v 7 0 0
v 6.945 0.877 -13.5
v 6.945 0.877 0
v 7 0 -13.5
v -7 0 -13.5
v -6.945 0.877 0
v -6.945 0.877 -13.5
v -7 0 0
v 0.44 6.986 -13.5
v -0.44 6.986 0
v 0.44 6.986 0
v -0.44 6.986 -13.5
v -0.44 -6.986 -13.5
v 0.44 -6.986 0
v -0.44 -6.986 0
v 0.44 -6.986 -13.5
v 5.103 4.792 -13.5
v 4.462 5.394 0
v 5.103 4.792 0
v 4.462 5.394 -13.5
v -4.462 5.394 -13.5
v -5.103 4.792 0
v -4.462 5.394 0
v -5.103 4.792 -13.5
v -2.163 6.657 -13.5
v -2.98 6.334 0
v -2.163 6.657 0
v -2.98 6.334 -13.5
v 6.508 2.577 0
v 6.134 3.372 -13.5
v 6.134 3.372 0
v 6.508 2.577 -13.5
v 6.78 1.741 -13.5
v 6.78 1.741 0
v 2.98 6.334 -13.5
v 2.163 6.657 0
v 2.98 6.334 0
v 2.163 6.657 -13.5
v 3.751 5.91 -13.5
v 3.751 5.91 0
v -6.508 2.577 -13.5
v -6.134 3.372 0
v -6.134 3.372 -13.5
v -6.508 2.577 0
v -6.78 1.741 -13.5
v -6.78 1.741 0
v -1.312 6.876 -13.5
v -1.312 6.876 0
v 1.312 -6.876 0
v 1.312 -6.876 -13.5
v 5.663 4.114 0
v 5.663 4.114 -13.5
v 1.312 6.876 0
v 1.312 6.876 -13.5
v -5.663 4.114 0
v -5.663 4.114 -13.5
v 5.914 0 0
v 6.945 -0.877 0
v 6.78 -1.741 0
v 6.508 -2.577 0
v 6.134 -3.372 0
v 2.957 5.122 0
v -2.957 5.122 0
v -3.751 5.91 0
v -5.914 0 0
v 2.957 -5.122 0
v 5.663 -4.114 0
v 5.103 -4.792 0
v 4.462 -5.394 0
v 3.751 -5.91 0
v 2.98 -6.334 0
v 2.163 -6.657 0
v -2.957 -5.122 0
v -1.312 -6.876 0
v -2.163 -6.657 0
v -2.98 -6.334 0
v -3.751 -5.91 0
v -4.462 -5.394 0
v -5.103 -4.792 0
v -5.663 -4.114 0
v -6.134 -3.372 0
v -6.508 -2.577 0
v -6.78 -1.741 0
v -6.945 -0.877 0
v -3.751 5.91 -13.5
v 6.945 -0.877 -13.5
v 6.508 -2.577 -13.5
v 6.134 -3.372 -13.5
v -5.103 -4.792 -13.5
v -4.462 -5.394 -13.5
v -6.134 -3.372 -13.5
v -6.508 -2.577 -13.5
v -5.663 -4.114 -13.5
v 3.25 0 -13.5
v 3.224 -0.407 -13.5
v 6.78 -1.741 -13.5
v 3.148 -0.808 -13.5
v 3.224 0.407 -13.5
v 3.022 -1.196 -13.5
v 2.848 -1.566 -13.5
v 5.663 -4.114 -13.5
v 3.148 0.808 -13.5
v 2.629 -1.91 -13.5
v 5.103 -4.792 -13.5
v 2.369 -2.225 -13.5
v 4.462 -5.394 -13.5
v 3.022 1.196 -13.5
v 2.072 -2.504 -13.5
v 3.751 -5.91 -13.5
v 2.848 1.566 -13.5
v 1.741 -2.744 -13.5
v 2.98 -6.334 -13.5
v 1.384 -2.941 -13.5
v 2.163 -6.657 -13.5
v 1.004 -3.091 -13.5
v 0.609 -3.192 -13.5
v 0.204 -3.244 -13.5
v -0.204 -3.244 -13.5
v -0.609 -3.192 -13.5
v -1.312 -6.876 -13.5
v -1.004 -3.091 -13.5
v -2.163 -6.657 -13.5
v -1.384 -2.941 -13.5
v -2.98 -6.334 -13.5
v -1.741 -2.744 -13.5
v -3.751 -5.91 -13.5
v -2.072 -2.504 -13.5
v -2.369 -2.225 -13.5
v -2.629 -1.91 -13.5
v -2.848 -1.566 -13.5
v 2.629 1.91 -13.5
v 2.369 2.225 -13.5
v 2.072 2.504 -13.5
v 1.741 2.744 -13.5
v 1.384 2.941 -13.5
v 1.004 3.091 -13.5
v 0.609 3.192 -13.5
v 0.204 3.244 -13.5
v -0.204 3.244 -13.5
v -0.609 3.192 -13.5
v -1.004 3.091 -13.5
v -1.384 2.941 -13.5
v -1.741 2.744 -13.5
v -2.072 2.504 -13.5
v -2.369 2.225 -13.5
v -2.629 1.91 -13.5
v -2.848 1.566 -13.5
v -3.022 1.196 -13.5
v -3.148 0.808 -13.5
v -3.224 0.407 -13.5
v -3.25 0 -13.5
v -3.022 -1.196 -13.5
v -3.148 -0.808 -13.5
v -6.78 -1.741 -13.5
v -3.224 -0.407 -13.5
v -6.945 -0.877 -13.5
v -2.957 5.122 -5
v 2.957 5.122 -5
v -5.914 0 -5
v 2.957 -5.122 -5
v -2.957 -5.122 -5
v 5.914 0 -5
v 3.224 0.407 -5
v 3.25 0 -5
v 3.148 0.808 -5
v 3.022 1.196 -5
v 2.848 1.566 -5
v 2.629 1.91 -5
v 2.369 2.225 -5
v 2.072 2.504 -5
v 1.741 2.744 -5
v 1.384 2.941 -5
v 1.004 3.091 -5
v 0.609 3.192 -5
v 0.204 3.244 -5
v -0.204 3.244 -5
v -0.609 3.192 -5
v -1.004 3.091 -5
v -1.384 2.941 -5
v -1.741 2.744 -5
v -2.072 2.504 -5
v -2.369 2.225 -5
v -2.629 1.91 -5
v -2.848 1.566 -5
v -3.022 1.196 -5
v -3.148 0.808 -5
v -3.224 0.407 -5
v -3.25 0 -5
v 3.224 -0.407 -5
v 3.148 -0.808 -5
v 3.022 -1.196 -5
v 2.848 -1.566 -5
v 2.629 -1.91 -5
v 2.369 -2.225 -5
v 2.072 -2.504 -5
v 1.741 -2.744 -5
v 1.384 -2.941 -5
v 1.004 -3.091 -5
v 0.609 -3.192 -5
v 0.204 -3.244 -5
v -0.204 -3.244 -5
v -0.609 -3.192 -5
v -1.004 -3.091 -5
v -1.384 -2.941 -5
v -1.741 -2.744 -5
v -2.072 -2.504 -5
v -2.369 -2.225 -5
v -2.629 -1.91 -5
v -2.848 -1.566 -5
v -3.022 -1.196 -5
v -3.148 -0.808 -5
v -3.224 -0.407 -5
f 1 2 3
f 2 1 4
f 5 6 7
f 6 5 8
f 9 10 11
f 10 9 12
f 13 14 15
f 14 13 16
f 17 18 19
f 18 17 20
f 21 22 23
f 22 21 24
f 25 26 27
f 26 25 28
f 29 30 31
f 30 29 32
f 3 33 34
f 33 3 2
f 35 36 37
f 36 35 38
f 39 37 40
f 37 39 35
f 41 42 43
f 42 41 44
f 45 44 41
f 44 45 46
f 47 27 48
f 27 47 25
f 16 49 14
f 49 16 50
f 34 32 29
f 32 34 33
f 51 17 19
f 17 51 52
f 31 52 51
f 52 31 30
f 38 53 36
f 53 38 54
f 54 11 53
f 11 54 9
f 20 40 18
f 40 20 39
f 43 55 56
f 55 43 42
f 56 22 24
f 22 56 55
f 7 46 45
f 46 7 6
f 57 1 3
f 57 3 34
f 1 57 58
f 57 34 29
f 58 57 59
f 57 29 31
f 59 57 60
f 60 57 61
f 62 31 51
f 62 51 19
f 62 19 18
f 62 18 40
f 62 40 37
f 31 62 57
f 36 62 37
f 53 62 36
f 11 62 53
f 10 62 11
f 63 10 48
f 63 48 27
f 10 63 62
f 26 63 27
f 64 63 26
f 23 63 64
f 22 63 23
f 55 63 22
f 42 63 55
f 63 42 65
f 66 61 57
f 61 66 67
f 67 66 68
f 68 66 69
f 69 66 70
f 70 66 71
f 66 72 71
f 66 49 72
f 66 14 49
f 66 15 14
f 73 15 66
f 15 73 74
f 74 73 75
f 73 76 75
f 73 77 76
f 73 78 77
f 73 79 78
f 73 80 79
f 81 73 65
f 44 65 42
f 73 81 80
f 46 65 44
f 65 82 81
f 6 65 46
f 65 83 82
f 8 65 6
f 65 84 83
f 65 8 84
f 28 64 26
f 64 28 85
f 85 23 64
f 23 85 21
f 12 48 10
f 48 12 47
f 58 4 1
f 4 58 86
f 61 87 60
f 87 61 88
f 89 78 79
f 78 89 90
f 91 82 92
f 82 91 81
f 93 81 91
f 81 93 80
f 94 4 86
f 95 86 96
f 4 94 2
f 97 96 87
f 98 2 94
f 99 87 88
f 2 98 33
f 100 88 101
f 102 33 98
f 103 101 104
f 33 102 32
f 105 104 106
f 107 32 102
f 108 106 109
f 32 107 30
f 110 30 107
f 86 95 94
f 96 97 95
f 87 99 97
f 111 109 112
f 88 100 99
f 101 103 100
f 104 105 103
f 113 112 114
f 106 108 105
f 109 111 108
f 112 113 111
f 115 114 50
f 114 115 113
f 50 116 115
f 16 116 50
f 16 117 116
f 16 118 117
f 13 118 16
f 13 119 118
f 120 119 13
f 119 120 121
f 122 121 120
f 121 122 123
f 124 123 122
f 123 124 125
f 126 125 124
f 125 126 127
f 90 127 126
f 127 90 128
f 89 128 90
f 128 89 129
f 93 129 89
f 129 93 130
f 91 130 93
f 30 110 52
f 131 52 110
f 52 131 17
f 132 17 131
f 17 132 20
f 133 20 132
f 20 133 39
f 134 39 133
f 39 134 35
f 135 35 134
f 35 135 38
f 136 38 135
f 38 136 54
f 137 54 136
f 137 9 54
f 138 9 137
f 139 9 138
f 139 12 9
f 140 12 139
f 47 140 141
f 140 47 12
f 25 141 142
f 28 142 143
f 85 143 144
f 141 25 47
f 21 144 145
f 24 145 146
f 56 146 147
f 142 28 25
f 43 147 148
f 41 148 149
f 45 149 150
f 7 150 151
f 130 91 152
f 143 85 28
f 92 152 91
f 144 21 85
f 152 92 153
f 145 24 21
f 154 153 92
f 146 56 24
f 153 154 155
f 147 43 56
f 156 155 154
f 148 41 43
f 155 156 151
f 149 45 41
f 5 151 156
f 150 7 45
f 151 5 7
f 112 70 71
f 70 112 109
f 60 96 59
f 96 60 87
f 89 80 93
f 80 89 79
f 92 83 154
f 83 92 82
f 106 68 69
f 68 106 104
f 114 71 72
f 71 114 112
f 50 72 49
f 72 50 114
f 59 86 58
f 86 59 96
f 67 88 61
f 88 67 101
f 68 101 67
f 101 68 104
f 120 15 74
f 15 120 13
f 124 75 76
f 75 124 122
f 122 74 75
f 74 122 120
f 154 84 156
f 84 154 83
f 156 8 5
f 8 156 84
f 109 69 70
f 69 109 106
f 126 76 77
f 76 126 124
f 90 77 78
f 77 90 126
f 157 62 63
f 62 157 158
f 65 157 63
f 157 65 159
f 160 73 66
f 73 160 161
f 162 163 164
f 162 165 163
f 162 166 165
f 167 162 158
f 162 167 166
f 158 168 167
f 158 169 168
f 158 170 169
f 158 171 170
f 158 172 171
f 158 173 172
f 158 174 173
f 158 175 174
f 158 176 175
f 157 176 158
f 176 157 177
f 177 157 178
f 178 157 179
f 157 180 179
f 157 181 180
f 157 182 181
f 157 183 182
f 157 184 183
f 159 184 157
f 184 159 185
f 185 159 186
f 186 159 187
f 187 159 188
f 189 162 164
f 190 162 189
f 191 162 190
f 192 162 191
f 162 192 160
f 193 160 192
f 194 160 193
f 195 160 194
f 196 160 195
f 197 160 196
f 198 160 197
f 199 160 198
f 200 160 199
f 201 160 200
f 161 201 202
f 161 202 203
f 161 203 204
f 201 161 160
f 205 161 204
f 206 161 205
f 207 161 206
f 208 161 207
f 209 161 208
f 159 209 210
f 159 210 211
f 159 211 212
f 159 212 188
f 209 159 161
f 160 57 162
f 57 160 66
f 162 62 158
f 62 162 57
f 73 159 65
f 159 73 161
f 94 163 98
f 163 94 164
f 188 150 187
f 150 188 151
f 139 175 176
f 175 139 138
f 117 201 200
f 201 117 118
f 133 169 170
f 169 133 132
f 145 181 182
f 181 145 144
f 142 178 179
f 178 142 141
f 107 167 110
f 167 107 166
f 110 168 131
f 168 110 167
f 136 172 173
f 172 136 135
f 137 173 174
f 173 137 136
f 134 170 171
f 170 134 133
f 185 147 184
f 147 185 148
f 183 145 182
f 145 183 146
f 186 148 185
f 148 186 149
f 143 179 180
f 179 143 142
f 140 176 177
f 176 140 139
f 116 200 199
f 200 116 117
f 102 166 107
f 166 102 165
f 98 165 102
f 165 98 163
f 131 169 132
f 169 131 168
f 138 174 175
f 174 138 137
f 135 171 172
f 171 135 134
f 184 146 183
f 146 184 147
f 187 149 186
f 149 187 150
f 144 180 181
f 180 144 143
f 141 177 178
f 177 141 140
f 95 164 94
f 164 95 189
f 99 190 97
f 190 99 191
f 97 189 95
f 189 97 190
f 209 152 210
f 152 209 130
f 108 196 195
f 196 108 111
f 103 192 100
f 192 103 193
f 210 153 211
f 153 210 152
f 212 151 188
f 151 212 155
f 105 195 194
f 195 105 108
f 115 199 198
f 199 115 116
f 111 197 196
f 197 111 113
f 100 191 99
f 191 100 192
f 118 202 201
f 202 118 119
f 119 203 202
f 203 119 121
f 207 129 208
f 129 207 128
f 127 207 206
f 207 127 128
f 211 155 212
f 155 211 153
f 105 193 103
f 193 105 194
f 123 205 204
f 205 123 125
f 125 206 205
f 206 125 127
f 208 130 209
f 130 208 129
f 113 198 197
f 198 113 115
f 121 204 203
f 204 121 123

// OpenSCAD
$fn = 50;


difference() {
	union() {
		translate(v = [0, 0, -13.5000000000]) {
			cylinder(h = 13.5000000000, r = 7.0000000000);
		}
		translate(v = [0, 0, -15.0000000000]) {
			cylinder(h = 15, r = 2.8750000000);
		}
	}
	union() {
		translate(v = [0, 0, 0]) {
			rotate(a = [0, 0, 0]) {
				difference() {
					union() {
						translate(v = [0, 0, -5]) {
							linear_extrude(height = 5) {
								polygon(points = [[5.9142500000, 0.0000000000], [2.9571250000, 5.1218907443], [-2.9571250000, 5.1218907443], [-5.9142500000, 0.0000000000], [-2.9571250000, -5.1218907443], [2.9571250000, -5.1218907443]]);
							}
						}
					}
					union();
				}
			}
		}
		#translate(v = [0, 0, -100.0000000000]) {
			cylinder(h = 200, r = 3.2500000000);
		}
	}
}
